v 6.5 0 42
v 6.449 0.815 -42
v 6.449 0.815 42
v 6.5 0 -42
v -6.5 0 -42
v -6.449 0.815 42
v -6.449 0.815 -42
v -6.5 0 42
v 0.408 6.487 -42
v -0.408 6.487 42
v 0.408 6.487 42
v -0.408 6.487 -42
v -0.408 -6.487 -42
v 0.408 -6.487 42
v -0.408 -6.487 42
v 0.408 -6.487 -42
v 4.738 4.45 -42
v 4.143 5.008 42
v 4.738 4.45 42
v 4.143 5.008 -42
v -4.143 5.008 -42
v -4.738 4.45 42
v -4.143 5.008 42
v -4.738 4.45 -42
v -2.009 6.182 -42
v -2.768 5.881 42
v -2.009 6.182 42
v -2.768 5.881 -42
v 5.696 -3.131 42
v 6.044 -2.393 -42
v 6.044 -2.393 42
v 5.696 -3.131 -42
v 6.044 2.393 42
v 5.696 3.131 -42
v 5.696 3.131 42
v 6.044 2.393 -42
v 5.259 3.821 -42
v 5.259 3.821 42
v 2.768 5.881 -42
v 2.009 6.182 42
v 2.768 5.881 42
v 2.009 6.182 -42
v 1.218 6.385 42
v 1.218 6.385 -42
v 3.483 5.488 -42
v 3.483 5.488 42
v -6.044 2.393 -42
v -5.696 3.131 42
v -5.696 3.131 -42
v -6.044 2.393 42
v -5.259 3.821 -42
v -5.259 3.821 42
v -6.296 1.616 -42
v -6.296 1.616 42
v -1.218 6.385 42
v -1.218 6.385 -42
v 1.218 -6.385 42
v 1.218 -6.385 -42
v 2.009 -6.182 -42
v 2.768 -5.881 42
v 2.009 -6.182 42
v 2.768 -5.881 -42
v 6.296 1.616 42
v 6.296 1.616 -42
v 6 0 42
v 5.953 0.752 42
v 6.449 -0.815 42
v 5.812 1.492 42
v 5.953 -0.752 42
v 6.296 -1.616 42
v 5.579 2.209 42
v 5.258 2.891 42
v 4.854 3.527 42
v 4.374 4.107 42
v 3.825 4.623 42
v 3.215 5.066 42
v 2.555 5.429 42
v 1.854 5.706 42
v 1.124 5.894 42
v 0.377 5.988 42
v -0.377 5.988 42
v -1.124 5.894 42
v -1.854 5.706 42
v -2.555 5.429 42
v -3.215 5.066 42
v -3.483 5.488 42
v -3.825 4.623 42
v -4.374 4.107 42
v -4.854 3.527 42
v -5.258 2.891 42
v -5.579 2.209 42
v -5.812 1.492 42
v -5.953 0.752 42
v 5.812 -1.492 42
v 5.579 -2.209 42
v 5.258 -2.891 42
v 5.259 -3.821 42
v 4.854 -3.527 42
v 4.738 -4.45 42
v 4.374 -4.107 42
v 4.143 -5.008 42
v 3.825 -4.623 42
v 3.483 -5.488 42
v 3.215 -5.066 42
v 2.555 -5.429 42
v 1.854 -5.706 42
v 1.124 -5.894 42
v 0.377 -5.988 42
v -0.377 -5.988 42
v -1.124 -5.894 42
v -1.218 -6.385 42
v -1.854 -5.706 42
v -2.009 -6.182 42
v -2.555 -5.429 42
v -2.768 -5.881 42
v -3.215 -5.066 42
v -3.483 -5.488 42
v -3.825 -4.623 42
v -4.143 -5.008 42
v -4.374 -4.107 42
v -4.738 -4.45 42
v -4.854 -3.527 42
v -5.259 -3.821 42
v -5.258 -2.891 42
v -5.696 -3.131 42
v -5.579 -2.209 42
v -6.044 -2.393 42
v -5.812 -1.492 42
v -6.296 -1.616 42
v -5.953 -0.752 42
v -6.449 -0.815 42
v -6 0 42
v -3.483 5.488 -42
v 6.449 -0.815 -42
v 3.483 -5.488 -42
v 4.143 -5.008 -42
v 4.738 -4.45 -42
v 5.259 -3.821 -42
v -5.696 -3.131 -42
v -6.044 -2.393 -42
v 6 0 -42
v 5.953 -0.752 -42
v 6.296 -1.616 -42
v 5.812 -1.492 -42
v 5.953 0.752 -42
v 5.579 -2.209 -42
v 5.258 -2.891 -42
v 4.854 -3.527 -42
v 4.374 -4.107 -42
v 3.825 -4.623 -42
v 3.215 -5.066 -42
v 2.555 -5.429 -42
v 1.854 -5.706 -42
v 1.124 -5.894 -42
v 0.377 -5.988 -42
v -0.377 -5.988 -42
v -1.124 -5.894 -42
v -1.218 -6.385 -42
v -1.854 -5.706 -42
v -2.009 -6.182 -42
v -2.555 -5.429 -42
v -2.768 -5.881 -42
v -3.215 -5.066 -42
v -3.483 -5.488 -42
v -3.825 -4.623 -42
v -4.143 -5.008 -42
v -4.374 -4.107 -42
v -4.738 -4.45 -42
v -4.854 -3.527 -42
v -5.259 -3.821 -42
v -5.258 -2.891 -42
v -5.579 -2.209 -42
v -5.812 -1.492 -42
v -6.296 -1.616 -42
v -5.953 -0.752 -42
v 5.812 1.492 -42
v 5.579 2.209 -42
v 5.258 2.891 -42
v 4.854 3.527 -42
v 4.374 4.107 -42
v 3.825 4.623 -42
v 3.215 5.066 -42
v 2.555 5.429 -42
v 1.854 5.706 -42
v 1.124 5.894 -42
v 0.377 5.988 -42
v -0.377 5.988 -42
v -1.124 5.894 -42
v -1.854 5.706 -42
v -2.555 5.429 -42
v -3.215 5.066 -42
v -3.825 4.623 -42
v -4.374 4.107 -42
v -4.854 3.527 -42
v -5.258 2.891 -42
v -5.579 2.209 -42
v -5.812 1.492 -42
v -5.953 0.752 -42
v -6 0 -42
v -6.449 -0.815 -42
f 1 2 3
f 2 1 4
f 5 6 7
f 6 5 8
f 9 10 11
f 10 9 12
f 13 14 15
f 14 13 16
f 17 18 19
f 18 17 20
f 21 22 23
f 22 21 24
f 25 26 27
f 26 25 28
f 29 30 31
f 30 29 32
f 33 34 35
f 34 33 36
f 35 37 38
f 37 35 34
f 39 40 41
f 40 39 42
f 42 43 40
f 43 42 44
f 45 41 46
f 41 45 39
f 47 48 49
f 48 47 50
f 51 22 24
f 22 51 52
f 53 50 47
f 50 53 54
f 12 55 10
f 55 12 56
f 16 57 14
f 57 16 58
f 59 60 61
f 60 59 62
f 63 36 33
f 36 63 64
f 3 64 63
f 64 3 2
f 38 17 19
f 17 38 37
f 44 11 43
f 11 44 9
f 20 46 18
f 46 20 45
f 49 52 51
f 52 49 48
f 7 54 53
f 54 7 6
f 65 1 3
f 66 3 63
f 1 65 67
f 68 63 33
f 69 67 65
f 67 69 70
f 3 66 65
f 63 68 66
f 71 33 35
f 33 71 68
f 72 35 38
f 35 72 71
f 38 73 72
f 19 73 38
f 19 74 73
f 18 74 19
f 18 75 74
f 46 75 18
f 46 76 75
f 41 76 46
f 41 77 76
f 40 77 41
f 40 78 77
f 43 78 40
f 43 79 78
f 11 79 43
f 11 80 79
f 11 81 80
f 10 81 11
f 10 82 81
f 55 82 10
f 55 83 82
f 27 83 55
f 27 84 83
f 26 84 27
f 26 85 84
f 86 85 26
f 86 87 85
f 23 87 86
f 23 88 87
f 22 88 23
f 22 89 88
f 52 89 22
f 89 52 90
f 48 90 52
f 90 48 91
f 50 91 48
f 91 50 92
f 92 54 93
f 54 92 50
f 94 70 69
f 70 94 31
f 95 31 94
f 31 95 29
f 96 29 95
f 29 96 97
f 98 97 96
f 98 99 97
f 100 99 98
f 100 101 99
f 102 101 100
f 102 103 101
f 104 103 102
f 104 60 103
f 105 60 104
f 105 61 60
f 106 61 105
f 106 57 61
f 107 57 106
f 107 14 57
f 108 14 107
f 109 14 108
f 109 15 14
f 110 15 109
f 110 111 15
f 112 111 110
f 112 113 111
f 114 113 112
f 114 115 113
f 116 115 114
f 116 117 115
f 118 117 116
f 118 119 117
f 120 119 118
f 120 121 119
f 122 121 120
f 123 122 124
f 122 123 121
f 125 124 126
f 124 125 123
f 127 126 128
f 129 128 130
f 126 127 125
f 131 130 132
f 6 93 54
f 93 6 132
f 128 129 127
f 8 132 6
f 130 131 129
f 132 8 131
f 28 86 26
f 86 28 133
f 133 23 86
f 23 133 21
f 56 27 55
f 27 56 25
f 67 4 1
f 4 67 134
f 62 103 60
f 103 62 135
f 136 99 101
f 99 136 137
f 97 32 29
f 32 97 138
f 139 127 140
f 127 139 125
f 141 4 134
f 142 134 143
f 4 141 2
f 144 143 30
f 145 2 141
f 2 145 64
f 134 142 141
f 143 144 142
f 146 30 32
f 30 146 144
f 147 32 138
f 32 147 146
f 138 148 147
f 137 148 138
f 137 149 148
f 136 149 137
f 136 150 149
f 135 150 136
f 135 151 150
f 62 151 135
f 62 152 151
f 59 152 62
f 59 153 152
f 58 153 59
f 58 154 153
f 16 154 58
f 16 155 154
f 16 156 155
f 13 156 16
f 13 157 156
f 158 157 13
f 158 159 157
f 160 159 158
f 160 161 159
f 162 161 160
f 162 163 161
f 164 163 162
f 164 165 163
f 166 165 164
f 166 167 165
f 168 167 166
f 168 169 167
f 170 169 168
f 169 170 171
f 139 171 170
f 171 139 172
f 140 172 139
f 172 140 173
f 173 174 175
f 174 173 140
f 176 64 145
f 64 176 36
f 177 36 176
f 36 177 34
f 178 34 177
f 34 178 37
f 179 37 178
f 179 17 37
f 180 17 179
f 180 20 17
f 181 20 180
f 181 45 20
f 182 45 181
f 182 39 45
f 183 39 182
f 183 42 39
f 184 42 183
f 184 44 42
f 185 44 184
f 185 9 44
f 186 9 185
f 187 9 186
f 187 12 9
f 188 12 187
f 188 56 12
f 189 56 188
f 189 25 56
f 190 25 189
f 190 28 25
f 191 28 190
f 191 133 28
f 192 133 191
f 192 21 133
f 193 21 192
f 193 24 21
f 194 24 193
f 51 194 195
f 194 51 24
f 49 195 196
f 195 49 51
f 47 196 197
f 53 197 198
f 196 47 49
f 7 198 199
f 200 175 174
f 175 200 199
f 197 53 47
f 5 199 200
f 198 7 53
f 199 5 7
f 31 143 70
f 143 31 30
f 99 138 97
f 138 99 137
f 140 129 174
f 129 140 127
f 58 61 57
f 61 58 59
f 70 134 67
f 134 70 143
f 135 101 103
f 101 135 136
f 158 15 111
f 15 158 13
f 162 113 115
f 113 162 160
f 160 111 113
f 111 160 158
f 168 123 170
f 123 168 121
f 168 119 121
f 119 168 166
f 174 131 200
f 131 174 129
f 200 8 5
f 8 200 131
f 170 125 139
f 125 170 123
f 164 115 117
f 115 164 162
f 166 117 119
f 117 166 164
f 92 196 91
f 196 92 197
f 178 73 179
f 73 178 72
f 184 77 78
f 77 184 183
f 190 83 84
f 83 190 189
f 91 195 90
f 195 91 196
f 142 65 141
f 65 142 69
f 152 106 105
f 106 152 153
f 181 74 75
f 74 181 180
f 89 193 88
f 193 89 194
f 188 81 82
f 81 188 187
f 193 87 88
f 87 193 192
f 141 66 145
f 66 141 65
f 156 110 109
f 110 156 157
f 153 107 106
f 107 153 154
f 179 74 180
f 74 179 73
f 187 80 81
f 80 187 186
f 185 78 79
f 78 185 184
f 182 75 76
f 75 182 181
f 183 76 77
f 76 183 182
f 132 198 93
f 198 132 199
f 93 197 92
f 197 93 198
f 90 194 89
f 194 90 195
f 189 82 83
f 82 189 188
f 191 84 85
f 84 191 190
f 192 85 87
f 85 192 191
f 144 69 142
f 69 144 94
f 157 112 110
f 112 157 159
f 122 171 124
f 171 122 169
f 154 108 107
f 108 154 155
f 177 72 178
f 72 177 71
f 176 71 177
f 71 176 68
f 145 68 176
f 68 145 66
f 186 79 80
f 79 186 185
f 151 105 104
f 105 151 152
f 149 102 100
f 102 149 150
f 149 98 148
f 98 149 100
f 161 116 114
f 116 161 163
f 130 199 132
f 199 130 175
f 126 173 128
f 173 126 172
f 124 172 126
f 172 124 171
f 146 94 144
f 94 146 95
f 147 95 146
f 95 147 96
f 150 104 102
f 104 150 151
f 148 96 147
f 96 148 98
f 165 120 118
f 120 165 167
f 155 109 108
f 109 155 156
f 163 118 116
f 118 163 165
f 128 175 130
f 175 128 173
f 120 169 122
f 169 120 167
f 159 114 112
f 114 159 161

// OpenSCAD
$fn = 50;


difference() {
	union() {
		translate(v = [0, 0, -42.0000000000]) {
			cylinder(h = 84, r = 6.5000000000);
		}
	}
	union() {
		translate(v = [0, 0, -100.0000000000]) {
			cylinder(h = 200, r = 6);
		}
	}
}
